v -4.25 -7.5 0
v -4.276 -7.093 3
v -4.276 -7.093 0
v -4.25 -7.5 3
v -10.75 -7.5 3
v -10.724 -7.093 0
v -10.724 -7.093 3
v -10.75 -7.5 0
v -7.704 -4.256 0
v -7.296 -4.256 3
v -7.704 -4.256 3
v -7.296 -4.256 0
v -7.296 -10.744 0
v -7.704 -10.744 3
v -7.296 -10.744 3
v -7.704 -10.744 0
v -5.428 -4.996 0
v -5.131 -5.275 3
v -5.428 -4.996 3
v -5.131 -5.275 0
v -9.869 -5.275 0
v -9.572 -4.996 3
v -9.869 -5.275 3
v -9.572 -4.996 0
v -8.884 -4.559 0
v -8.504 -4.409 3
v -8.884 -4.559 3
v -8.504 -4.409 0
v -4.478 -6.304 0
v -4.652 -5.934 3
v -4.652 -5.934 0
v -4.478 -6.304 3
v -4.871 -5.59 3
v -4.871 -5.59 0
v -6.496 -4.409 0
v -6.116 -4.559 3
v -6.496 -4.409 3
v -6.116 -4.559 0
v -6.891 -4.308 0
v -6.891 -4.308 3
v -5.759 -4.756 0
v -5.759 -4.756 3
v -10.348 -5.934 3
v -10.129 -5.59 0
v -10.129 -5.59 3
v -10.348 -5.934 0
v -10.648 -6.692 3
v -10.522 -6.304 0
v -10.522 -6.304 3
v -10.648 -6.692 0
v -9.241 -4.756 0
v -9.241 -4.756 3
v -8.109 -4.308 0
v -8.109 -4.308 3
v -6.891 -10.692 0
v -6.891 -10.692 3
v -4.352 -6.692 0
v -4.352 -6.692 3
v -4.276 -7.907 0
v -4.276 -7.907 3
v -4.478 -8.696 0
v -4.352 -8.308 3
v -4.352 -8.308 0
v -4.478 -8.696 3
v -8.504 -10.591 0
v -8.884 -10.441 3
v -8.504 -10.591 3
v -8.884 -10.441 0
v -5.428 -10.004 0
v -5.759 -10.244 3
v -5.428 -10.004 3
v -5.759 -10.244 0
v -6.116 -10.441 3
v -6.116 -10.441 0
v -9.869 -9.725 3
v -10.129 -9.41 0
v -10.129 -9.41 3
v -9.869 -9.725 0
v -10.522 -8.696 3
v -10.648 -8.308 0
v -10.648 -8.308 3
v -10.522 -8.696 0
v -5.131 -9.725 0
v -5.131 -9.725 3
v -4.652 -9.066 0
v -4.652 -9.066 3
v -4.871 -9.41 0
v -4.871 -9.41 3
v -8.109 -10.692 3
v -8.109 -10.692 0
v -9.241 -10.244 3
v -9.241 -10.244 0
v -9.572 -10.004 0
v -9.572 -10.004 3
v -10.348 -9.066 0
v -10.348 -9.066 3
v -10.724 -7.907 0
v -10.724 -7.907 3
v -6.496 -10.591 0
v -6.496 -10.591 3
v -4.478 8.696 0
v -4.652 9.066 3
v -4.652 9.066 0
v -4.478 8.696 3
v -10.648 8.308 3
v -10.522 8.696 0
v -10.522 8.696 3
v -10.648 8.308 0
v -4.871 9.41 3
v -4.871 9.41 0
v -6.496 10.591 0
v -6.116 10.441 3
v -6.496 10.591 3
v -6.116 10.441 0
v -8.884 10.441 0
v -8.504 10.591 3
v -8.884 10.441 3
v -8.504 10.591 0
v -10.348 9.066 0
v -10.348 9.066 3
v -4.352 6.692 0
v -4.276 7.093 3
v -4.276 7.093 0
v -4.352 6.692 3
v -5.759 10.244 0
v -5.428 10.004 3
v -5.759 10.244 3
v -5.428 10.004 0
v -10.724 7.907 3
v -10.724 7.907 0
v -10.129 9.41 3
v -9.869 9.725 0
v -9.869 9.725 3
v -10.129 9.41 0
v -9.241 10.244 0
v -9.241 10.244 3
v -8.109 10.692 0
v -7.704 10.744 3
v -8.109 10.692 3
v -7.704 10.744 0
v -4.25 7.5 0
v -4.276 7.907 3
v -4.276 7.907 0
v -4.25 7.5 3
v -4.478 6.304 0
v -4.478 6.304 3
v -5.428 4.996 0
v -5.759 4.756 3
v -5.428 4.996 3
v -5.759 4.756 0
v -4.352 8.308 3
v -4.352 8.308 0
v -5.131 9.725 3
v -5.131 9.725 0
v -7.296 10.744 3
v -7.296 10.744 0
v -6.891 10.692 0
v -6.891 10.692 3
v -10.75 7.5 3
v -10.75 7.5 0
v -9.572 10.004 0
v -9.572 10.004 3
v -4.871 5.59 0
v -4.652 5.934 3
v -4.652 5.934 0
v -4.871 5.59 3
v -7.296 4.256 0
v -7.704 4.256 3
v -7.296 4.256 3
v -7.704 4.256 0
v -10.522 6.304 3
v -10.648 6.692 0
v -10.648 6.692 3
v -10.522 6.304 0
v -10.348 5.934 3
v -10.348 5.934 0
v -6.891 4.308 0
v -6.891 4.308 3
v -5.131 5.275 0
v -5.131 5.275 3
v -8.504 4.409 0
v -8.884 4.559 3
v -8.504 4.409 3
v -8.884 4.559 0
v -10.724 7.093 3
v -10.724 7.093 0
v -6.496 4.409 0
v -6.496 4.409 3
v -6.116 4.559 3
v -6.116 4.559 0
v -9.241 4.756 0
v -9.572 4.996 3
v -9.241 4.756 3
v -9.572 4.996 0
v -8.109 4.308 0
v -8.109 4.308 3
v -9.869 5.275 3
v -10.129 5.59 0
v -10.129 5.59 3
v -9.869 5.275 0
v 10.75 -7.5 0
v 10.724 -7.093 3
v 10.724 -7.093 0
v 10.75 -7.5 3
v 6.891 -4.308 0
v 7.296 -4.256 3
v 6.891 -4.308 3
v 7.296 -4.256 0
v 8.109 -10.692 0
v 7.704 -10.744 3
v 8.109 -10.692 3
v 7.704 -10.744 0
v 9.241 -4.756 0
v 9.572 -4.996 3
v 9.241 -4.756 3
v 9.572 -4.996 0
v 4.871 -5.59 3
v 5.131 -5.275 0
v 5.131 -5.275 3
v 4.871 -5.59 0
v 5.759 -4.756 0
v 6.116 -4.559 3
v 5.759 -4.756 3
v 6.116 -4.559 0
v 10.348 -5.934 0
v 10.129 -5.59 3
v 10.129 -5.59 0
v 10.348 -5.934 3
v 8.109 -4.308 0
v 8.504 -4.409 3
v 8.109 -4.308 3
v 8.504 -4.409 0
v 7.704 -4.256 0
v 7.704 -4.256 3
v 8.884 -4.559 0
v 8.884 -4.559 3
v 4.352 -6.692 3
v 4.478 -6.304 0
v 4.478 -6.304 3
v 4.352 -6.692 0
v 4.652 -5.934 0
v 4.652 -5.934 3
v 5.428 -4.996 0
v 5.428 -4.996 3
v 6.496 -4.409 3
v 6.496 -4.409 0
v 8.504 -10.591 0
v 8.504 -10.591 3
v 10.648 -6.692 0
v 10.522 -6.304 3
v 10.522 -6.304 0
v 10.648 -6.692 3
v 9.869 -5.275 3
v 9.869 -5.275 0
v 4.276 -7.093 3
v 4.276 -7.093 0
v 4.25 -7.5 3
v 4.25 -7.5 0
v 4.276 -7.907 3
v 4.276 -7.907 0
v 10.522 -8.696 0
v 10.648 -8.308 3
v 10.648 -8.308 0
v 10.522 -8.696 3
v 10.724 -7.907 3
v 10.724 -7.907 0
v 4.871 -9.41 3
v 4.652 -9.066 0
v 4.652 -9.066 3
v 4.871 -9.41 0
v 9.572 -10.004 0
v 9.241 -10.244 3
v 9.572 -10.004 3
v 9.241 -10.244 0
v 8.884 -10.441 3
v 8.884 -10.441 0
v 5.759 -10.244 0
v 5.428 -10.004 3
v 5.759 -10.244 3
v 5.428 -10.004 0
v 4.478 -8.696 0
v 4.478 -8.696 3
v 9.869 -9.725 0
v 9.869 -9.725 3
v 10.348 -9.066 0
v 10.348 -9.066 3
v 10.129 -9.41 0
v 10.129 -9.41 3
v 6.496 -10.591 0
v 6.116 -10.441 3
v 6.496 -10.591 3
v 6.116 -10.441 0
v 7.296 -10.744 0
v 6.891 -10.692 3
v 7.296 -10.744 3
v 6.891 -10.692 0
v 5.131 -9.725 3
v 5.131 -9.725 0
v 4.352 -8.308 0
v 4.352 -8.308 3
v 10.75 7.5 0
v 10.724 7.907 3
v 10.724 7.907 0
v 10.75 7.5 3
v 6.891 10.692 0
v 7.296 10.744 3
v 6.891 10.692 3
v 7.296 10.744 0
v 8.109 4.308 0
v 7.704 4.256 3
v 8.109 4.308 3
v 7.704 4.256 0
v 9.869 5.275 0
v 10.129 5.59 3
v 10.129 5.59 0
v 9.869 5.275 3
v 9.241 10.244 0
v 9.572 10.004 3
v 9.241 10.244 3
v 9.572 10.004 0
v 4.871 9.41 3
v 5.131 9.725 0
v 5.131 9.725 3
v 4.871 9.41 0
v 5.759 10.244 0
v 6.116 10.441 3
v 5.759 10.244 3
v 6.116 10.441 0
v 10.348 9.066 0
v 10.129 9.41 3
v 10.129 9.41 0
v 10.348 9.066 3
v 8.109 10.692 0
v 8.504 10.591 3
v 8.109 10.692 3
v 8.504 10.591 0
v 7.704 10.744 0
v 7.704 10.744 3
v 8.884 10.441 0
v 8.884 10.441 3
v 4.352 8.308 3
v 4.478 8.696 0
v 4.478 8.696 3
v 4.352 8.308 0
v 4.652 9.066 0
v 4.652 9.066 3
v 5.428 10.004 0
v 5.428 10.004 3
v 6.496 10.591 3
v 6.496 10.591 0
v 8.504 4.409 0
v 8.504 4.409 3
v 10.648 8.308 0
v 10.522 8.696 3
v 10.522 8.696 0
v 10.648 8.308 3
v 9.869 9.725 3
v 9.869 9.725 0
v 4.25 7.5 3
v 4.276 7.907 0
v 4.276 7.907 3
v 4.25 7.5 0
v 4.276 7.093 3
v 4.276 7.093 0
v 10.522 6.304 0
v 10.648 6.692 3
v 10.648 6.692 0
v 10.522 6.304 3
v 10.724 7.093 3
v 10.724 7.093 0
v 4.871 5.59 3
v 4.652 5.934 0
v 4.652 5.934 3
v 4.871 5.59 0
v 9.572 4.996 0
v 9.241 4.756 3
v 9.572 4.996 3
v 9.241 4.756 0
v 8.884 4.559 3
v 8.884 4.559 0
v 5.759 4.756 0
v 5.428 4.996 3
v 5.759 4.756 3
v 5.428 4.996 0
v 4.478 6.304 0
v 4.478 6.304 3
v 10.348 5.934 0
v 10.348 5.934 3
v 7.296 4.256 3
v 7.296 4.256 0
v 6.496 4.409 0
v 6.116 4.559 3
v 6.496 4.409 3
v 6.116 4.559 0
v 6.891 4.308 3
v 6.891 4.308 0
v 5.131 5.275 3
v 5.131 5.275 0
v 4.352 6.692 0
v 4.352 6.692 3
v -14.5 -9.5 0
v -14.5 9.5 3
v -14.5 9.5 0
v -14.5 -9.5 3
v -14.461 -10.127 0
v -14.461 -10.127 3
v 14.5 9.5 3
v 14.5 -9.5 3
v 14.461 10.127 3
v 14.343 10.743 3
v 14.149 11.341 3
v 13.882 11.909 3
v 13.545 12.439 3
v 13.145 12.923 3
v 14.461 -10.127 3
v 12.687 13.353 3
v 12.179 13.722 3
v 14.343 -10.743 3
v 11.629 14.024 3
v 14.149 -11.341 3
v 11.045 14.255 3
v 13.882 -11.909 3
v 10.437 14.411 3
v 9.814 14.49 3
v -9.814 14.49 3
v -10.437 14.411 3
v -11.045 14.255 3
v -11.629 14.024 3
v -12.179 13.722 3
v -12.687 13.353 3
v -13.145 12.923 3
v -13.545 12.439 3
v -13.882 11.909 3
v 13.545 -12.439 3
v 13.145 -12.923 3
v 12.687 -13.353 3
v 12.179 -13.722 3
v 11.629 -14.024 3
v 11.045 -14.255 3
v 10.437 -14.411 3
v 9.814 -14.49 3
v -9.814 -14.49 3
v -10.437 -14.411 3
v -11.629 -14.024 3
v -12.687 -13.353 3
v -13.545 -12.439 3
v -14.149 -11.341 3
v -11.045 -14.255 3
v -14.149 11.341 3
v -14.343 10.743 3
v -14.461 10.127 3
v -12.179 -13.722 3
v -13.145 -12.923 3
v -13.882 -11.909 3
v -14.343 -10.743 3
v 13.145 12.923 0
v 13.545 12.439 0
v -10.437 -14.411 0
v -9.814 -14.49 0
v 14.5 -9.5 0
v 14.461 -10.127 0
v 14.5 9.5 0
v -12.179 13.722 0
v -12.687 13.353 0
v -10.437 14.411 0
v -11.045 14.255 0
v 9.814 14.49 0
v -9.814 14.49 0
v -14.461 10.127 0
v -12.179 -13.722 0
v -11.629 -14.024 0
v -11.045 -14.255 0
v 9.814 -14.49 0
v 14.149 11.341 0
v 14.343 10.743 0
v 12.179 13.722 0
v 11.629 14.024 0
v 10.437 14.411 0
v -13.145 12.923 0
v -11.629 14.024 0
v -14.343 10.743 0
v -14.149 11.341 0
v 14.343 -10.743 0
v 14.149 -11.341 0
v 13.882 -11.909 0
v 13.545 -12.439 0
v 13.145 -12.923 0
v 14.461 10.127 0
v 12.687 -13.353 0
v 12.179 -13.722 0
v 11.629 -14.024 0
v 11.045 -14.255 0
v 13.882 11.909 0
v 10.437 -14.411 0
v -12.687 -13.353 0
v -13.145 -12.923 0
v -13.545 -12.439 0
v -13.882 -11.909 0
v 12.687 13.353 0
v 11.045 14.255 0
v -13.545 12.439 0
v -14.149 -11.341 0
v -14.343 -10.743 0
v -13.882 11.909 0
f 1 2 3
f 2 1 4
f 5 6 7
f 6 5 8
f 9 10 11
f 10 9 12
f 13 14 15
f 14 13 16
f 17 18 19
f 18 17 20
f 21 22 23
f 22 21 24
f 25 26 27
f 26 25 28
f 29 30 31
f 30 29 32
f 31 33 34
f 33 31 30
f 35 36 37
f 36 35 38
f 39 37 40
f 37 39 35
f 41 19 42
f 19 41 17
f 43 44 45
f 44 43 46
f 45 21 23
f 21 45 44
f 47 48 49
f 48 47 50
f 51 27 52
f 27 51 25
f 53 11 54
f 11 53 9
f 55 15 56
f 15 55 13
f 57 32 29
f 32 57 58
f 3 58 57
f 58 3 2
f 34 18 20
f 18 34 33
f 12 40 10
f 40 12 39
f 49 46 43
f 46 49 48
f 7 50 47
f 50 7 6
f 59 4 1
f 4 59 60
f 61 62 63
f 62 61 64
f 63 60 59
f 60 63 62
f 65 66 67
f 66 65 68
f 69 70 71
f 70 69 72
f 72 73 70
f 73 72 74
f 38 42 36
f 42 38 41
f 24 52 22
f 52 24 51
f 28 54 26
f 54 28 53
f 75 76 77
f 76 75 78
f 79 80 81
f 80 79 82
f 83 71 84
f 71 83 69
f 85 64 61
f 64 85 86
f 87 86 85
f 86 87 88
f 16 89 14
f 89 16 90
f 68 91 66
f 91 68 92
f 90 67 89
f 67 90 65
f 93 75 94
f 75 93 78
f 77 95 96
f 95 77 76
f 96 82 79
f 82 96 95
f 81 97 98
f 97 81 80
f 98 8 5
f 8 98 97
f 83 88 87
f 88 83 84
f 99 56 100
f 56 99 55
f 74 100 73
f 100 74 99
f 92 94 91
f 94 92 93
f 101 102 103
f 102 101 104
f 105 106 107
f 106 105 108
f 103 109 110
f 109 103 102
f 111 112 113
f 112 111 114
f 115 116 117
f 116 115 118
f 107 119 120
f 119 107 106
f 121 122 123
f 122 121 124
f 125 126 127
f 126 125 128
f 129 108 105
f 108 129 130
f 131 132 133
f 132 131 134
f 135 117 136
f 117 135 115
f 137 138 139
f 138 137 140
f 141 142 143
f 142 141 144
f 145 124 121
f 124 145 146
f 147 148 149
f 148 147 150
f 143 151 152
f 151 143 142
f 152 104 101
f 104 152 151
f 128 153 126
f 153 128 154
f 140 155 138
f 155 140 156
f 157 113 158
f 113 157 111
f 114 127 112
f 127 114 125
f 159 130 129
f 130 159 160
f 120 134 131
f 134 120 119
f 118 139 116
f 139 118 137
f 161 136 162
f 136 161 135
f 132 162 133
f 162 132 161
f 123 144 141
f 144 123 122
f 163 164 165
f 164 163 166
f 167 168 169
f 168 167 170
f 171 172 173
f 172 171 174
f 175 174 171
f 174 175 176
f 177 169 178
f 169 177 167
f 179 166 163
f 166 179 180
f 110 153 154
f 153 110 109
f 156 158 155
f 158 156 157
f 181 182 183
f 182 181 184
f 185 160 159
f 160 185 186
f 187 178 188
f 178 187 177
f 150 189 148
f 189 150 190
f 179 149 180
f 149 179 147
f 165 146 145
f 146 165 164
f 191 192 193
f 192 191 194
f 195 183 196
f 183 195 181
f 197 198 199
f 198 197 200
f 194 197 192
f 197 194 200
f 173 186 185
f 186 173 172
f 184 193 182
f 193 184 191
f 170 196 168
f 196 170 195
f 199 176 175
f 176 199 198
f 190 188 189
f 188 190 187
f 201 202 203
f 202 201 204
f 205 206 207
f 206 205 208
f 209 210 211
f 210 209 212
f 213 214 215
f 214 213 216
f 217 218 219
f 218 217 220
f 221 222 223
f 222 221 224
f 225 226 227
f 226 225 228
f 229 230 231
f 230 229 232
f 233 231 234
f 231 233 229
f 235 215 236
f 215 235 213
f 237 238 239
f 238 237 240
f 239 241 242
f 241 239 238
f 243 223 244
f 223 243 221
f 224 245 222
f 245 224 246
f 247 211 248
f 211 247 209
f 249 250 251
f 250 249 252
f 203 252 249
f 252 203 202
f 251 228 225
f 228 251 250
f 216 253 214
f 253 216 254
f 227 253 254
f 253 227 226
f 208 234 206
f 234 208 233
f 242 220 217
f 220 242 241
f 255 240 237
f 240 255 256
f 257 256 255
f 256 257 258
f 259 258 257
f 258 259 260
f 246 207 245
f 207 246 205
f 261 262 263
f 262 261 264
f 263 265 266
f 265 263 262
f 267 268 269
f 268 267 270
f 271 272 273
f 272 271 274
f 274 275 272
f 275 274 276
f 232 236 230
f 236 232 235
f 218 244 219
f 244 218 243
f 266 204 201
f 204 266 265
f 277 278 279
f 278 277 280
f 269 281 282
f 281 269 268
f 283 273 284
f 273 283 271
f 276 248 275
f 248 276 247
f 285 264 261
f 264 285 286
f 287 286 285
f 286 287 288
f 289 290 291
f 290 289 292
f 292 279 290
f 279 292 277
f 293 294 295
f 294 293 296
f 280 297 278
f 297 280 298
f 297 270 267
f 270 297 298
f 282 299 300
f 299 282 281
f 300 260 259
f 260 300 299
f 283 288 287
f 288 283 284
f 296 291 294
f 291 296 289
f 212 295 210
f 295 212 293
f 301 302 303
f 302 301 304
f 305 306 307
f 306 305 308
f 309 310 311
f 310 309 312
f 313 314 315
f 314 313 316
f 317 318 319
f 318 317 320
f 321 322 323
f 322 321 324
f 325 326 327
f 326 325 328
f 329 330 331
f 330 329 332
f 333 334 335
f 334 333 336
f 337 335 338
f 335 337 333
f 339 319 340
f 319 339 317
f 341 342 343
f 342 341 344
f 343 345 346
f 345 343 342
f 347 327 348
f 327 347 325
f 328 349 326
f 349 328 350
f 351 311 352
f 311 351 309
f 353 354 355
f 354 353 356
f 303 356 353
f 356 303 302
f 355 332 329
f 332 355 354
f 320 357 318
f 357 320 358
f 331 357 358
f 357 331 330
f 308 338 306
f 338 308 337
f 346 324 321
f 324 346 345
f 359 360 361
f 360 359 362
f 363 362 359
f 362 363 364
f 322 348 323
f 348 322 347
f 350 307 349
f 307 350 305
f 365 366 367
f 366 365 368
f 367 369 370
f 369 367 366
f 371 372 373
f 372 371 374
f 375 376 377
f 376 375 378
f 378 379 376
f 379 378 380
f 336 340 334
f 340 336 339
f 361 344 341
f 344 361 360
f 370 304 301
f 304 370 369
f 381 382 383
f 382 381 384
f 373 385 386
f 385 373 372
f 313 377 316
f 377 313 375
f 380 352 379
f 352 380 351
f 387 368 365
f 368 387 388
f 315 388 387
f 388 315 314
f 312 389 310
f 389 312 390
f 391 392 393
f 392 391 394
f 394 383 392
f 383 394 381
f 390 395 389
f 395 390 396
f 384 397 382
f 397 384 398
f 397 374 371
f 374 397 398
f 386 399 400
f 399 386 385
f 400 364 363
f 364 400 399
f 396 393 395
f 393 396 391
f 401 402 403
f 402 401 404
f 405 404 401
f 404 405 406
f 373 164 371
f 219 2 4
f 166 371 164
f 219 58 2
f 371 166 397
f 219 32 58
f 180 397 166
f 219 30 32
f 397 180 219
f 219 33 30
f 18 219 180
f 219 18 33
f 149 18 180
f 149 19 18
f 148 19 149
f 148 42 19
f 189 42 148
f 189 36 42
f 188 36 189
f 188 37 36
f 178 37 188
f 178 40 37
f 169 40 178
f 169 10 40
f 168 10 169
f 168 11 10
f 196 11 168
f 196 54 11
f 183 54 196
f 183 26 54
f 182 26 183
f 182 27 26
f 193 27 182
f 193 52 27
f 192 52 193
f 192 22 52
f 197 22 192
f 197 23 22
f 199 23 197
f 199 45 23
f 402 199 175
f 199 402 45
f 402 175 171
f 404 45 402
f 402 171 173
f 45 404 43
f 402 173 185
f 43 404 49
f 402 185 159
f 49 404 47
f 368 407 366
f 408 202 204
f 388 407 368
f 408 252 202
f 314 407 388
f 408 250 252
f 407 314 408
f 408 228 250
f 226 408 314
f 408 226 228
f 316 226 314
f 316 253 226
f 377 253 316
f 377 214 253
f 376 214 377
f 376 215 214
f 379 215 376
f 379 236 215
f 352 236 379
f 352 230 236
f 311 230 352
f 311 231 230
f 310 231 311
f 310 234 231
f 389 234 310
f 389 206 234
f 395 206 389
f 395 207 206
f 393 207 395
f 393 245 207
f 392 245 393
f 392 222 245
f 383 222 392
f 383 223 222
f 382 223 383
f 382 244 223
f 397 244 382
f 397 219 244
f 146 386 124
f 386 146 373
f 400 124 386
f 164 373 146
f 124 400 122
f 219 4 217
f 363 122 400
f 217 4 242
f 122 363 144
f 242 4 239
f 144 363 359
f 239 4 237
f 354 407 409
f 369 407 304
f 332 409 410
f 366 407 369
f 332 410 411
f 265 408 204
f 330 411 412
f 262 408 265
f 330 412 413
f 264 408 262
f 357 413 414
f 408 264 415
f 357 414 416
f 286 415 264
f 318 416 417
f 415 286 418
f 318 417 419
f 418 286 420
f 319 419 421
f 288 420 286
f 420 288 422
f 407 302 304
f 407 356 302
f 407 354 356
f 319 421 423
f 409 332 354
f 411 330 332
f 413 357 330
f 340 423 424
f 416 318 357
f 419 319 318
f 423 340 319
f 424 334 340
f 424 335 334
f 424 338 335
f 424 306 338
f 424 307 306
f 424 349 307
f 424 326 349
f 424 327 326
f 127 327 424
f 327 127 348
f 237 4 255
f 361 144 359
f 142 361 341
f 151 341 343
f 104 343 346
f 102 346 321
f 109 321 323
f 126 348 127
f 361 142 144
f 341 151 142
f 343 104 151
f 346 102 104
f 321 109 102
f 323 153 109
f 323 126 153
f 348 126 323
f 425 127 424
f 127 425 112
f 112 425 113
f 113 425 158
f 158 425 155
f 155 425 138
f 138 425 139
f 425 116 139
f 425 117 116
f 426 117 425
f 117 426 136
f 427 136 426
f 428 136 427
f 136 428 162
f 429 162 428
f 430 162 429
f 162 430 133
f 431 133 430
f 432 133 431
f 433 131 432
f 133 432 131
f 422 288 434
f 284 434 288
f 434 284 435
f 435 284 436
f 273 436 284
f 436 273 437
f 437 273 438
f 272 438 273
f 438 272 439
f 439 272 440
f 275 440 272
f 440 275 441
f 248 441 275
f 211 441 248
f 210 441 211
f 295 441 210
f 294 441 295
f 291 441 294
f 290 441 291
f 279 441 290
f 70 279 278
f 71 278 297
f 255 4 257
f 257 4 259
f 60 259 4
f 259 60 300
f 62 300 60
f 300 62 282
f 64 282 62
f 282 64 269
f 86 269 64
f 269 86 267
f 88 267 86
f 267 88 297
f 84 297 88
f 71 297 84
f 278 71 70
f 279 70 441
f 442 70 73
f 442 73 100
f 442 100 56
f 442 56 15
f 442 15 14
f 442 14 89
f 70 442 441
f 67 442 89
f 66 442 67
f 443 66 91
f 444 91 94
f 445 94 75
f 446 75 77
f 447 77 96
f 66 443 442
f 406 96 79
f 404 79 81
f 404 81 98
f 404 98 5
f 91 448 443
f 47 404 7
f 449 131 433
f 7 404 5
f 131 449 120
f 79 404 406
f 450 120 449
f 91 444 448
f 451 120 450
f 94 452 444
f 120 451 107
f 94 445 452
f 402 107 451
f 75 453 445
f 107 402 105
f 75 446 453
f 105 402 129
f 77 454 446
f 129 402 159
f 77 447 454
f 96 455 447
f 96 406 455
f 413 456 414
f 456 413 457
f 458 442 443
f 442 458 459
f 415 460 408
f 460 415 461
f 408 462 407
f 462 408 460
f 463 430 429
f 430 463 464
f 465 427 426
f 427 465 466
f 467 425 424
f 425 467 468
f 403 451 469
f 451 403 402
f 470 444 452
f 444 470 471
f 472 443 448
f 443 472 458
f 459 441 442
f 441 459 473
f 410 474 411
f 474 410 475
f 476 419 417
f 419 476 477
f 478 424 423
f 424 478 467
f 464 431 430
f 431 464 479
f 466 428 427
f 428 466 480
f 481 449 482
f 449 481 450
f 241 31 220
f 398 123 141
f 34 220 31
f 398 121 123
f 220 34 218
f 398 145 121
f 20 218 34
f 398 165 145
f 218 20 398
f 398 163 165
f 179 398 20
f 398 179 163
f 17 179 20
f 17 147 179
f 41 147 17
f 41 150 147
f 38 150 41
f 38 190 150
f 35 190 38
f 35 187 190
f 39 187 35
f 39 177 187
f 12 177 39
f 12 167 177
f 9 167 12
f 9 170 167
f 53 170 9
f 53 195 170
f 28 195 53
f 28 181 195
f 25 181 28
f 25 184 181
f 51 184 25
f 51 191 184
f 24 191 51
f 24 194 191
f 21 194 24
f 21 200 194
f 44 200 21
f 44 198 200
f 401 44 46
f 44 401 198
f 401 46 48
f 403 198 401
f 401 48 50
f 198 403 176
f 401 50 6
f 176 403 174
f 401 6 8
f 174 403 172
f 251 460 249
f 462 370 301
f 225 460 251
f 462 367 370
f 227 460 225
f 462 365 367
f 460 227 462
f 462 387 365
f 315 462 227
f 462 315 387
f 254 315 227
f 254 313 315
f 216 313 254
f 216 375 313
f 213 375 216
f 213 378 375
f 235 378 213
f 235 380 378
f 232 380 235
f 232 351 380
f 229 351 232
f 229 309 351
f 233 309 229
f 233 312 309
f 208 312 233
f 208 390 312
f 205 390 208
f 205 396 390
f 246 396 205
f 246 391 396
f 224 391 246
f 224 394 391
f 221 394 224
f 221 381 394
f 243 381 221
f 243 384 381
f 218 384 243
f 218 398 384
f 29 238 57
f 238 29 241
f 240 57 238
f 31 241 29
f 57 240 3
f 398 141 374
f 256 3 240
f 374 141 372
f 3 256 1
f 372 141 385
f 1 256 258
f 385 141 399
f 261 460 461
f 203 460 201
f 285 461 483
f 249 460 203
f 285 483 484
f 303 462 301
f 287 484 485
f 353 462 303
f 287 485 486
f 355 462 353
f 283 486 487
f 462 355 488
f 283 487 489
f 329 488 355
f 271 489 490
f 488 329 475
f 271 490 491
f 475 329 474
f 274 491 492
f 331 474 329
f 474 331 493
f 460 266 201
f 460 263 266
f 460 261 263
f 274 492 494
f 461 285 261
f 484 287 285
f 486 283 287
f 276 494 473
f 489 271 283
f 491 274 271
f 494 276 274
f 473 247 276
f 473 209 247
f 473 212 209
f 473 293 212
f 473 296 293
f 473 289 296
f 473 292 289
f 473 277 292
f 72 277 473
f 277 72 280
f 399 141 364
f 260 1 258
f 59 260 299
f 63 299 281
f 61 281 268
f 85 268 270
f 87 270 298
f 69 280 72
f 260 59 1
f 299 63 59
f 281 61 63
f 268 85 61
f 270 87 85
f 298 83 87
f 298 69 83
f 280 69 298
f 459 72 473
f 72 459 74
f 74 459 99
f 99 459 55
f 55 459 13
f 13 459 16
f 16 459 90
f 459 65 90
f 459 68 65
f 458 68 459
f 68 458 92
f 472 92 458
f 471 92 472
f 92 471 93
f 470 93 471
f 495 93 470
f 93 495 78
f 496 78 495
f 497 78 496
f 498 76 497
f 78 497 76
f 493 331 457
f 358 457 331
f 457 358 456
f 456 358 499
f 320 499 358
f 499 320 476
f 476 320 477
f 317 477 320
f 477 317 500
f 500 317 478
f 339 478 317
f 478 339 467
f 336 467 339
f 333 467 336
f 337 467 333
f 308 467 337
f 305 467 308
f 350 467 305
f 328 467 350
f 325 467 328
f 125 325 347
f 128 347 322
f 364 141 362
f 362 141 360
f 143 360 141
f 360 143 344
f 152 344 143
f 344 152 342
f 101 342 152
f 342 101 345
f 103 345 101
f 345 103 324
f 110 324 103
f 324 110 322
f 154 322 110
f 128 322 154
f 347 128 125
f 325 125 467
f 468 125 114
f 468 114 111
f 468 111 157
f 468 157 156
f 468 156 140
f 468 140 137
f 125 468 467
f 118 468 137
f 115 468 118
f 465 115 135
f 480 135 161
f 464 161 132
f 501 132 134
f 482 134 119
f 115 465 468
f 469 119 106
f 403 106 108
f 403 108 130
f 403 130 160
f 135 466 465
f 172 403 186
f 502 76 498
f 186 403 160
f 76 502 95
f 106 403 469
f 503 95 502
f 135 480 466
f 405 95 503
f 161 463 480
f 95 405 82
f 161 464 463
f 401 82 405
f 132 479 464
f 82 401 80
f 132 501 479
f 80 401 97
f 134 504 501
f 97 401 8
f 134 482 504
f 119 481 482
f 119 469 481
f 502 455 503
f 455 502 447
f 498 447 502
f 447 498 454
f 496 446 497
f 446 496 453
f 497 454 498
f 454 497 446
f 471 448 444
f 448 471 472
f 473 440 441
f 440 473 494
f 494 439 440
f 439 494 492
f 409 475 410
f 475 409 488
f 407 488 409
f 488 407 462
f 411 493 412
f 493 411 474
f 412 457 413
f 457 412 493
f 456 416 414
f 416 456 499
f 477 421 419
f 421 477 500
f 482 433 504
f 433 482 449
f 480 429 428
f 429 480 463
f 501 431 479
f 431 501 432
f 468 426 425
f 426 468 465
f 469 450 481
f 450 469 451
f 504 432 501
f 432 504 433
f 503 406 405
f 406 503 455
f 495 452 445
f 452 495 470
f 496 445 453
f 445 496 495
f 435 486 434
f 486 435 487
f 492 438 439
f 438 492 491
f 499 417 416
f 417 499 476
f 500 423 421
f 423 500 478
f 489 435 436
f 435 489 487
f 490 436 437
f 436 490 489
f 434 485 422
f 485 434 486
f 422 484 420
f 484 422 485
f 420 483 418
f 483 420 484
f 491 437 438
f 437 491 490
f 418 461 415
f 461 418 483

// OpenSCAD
$fn = 50;


difference() {
	union() {
		hull() {
			translate(v = [-9.5000000000, 9.5000000000, 0]) {
				cylinder(h = 3, r = 5);
			}
			translate(v = [9.5000000000, 9.5000000000, 0]) {
				cylinder(h = 3, r = 5);
			}
			translate(v = [-9.5000000000, -9.5000000000, 0]) {
				cylinder(h = 3, r = 5);
			}
			translate(v = [9.5000000000, -9.5000000000, 0]) {
				cylinder(h = 3, r = 5);
			}
		}
	}
	union() {
		translate(v = [-7.5000000000, -7.5000000000, 0]) {
			translate(v = [0, 0, -100]) {
				cylinder(h = 200, r = 3.2500000000);
			}
		}
		translate(v = [-7.5000000000, 7.5000000000, 0]) {
			translate(v = [0, 0, -100]) {
				cylinder(h = 200, r = 3.2500000000);
			}
		}
		translate(v = [7.5000000000, -7.5000000000, 0]) {
			translate(v = [0, 0, -100]) {
				cylinder(h = 200, r = 3.2500000000);
			}
		}
		translate(v = [7.5000000000, 7.5000000000, 0]) {
			translate(v = [0, 0, -100]) {
				cylinder(h = 200, r = 3.2500000000);
			}
		}
	}
}
